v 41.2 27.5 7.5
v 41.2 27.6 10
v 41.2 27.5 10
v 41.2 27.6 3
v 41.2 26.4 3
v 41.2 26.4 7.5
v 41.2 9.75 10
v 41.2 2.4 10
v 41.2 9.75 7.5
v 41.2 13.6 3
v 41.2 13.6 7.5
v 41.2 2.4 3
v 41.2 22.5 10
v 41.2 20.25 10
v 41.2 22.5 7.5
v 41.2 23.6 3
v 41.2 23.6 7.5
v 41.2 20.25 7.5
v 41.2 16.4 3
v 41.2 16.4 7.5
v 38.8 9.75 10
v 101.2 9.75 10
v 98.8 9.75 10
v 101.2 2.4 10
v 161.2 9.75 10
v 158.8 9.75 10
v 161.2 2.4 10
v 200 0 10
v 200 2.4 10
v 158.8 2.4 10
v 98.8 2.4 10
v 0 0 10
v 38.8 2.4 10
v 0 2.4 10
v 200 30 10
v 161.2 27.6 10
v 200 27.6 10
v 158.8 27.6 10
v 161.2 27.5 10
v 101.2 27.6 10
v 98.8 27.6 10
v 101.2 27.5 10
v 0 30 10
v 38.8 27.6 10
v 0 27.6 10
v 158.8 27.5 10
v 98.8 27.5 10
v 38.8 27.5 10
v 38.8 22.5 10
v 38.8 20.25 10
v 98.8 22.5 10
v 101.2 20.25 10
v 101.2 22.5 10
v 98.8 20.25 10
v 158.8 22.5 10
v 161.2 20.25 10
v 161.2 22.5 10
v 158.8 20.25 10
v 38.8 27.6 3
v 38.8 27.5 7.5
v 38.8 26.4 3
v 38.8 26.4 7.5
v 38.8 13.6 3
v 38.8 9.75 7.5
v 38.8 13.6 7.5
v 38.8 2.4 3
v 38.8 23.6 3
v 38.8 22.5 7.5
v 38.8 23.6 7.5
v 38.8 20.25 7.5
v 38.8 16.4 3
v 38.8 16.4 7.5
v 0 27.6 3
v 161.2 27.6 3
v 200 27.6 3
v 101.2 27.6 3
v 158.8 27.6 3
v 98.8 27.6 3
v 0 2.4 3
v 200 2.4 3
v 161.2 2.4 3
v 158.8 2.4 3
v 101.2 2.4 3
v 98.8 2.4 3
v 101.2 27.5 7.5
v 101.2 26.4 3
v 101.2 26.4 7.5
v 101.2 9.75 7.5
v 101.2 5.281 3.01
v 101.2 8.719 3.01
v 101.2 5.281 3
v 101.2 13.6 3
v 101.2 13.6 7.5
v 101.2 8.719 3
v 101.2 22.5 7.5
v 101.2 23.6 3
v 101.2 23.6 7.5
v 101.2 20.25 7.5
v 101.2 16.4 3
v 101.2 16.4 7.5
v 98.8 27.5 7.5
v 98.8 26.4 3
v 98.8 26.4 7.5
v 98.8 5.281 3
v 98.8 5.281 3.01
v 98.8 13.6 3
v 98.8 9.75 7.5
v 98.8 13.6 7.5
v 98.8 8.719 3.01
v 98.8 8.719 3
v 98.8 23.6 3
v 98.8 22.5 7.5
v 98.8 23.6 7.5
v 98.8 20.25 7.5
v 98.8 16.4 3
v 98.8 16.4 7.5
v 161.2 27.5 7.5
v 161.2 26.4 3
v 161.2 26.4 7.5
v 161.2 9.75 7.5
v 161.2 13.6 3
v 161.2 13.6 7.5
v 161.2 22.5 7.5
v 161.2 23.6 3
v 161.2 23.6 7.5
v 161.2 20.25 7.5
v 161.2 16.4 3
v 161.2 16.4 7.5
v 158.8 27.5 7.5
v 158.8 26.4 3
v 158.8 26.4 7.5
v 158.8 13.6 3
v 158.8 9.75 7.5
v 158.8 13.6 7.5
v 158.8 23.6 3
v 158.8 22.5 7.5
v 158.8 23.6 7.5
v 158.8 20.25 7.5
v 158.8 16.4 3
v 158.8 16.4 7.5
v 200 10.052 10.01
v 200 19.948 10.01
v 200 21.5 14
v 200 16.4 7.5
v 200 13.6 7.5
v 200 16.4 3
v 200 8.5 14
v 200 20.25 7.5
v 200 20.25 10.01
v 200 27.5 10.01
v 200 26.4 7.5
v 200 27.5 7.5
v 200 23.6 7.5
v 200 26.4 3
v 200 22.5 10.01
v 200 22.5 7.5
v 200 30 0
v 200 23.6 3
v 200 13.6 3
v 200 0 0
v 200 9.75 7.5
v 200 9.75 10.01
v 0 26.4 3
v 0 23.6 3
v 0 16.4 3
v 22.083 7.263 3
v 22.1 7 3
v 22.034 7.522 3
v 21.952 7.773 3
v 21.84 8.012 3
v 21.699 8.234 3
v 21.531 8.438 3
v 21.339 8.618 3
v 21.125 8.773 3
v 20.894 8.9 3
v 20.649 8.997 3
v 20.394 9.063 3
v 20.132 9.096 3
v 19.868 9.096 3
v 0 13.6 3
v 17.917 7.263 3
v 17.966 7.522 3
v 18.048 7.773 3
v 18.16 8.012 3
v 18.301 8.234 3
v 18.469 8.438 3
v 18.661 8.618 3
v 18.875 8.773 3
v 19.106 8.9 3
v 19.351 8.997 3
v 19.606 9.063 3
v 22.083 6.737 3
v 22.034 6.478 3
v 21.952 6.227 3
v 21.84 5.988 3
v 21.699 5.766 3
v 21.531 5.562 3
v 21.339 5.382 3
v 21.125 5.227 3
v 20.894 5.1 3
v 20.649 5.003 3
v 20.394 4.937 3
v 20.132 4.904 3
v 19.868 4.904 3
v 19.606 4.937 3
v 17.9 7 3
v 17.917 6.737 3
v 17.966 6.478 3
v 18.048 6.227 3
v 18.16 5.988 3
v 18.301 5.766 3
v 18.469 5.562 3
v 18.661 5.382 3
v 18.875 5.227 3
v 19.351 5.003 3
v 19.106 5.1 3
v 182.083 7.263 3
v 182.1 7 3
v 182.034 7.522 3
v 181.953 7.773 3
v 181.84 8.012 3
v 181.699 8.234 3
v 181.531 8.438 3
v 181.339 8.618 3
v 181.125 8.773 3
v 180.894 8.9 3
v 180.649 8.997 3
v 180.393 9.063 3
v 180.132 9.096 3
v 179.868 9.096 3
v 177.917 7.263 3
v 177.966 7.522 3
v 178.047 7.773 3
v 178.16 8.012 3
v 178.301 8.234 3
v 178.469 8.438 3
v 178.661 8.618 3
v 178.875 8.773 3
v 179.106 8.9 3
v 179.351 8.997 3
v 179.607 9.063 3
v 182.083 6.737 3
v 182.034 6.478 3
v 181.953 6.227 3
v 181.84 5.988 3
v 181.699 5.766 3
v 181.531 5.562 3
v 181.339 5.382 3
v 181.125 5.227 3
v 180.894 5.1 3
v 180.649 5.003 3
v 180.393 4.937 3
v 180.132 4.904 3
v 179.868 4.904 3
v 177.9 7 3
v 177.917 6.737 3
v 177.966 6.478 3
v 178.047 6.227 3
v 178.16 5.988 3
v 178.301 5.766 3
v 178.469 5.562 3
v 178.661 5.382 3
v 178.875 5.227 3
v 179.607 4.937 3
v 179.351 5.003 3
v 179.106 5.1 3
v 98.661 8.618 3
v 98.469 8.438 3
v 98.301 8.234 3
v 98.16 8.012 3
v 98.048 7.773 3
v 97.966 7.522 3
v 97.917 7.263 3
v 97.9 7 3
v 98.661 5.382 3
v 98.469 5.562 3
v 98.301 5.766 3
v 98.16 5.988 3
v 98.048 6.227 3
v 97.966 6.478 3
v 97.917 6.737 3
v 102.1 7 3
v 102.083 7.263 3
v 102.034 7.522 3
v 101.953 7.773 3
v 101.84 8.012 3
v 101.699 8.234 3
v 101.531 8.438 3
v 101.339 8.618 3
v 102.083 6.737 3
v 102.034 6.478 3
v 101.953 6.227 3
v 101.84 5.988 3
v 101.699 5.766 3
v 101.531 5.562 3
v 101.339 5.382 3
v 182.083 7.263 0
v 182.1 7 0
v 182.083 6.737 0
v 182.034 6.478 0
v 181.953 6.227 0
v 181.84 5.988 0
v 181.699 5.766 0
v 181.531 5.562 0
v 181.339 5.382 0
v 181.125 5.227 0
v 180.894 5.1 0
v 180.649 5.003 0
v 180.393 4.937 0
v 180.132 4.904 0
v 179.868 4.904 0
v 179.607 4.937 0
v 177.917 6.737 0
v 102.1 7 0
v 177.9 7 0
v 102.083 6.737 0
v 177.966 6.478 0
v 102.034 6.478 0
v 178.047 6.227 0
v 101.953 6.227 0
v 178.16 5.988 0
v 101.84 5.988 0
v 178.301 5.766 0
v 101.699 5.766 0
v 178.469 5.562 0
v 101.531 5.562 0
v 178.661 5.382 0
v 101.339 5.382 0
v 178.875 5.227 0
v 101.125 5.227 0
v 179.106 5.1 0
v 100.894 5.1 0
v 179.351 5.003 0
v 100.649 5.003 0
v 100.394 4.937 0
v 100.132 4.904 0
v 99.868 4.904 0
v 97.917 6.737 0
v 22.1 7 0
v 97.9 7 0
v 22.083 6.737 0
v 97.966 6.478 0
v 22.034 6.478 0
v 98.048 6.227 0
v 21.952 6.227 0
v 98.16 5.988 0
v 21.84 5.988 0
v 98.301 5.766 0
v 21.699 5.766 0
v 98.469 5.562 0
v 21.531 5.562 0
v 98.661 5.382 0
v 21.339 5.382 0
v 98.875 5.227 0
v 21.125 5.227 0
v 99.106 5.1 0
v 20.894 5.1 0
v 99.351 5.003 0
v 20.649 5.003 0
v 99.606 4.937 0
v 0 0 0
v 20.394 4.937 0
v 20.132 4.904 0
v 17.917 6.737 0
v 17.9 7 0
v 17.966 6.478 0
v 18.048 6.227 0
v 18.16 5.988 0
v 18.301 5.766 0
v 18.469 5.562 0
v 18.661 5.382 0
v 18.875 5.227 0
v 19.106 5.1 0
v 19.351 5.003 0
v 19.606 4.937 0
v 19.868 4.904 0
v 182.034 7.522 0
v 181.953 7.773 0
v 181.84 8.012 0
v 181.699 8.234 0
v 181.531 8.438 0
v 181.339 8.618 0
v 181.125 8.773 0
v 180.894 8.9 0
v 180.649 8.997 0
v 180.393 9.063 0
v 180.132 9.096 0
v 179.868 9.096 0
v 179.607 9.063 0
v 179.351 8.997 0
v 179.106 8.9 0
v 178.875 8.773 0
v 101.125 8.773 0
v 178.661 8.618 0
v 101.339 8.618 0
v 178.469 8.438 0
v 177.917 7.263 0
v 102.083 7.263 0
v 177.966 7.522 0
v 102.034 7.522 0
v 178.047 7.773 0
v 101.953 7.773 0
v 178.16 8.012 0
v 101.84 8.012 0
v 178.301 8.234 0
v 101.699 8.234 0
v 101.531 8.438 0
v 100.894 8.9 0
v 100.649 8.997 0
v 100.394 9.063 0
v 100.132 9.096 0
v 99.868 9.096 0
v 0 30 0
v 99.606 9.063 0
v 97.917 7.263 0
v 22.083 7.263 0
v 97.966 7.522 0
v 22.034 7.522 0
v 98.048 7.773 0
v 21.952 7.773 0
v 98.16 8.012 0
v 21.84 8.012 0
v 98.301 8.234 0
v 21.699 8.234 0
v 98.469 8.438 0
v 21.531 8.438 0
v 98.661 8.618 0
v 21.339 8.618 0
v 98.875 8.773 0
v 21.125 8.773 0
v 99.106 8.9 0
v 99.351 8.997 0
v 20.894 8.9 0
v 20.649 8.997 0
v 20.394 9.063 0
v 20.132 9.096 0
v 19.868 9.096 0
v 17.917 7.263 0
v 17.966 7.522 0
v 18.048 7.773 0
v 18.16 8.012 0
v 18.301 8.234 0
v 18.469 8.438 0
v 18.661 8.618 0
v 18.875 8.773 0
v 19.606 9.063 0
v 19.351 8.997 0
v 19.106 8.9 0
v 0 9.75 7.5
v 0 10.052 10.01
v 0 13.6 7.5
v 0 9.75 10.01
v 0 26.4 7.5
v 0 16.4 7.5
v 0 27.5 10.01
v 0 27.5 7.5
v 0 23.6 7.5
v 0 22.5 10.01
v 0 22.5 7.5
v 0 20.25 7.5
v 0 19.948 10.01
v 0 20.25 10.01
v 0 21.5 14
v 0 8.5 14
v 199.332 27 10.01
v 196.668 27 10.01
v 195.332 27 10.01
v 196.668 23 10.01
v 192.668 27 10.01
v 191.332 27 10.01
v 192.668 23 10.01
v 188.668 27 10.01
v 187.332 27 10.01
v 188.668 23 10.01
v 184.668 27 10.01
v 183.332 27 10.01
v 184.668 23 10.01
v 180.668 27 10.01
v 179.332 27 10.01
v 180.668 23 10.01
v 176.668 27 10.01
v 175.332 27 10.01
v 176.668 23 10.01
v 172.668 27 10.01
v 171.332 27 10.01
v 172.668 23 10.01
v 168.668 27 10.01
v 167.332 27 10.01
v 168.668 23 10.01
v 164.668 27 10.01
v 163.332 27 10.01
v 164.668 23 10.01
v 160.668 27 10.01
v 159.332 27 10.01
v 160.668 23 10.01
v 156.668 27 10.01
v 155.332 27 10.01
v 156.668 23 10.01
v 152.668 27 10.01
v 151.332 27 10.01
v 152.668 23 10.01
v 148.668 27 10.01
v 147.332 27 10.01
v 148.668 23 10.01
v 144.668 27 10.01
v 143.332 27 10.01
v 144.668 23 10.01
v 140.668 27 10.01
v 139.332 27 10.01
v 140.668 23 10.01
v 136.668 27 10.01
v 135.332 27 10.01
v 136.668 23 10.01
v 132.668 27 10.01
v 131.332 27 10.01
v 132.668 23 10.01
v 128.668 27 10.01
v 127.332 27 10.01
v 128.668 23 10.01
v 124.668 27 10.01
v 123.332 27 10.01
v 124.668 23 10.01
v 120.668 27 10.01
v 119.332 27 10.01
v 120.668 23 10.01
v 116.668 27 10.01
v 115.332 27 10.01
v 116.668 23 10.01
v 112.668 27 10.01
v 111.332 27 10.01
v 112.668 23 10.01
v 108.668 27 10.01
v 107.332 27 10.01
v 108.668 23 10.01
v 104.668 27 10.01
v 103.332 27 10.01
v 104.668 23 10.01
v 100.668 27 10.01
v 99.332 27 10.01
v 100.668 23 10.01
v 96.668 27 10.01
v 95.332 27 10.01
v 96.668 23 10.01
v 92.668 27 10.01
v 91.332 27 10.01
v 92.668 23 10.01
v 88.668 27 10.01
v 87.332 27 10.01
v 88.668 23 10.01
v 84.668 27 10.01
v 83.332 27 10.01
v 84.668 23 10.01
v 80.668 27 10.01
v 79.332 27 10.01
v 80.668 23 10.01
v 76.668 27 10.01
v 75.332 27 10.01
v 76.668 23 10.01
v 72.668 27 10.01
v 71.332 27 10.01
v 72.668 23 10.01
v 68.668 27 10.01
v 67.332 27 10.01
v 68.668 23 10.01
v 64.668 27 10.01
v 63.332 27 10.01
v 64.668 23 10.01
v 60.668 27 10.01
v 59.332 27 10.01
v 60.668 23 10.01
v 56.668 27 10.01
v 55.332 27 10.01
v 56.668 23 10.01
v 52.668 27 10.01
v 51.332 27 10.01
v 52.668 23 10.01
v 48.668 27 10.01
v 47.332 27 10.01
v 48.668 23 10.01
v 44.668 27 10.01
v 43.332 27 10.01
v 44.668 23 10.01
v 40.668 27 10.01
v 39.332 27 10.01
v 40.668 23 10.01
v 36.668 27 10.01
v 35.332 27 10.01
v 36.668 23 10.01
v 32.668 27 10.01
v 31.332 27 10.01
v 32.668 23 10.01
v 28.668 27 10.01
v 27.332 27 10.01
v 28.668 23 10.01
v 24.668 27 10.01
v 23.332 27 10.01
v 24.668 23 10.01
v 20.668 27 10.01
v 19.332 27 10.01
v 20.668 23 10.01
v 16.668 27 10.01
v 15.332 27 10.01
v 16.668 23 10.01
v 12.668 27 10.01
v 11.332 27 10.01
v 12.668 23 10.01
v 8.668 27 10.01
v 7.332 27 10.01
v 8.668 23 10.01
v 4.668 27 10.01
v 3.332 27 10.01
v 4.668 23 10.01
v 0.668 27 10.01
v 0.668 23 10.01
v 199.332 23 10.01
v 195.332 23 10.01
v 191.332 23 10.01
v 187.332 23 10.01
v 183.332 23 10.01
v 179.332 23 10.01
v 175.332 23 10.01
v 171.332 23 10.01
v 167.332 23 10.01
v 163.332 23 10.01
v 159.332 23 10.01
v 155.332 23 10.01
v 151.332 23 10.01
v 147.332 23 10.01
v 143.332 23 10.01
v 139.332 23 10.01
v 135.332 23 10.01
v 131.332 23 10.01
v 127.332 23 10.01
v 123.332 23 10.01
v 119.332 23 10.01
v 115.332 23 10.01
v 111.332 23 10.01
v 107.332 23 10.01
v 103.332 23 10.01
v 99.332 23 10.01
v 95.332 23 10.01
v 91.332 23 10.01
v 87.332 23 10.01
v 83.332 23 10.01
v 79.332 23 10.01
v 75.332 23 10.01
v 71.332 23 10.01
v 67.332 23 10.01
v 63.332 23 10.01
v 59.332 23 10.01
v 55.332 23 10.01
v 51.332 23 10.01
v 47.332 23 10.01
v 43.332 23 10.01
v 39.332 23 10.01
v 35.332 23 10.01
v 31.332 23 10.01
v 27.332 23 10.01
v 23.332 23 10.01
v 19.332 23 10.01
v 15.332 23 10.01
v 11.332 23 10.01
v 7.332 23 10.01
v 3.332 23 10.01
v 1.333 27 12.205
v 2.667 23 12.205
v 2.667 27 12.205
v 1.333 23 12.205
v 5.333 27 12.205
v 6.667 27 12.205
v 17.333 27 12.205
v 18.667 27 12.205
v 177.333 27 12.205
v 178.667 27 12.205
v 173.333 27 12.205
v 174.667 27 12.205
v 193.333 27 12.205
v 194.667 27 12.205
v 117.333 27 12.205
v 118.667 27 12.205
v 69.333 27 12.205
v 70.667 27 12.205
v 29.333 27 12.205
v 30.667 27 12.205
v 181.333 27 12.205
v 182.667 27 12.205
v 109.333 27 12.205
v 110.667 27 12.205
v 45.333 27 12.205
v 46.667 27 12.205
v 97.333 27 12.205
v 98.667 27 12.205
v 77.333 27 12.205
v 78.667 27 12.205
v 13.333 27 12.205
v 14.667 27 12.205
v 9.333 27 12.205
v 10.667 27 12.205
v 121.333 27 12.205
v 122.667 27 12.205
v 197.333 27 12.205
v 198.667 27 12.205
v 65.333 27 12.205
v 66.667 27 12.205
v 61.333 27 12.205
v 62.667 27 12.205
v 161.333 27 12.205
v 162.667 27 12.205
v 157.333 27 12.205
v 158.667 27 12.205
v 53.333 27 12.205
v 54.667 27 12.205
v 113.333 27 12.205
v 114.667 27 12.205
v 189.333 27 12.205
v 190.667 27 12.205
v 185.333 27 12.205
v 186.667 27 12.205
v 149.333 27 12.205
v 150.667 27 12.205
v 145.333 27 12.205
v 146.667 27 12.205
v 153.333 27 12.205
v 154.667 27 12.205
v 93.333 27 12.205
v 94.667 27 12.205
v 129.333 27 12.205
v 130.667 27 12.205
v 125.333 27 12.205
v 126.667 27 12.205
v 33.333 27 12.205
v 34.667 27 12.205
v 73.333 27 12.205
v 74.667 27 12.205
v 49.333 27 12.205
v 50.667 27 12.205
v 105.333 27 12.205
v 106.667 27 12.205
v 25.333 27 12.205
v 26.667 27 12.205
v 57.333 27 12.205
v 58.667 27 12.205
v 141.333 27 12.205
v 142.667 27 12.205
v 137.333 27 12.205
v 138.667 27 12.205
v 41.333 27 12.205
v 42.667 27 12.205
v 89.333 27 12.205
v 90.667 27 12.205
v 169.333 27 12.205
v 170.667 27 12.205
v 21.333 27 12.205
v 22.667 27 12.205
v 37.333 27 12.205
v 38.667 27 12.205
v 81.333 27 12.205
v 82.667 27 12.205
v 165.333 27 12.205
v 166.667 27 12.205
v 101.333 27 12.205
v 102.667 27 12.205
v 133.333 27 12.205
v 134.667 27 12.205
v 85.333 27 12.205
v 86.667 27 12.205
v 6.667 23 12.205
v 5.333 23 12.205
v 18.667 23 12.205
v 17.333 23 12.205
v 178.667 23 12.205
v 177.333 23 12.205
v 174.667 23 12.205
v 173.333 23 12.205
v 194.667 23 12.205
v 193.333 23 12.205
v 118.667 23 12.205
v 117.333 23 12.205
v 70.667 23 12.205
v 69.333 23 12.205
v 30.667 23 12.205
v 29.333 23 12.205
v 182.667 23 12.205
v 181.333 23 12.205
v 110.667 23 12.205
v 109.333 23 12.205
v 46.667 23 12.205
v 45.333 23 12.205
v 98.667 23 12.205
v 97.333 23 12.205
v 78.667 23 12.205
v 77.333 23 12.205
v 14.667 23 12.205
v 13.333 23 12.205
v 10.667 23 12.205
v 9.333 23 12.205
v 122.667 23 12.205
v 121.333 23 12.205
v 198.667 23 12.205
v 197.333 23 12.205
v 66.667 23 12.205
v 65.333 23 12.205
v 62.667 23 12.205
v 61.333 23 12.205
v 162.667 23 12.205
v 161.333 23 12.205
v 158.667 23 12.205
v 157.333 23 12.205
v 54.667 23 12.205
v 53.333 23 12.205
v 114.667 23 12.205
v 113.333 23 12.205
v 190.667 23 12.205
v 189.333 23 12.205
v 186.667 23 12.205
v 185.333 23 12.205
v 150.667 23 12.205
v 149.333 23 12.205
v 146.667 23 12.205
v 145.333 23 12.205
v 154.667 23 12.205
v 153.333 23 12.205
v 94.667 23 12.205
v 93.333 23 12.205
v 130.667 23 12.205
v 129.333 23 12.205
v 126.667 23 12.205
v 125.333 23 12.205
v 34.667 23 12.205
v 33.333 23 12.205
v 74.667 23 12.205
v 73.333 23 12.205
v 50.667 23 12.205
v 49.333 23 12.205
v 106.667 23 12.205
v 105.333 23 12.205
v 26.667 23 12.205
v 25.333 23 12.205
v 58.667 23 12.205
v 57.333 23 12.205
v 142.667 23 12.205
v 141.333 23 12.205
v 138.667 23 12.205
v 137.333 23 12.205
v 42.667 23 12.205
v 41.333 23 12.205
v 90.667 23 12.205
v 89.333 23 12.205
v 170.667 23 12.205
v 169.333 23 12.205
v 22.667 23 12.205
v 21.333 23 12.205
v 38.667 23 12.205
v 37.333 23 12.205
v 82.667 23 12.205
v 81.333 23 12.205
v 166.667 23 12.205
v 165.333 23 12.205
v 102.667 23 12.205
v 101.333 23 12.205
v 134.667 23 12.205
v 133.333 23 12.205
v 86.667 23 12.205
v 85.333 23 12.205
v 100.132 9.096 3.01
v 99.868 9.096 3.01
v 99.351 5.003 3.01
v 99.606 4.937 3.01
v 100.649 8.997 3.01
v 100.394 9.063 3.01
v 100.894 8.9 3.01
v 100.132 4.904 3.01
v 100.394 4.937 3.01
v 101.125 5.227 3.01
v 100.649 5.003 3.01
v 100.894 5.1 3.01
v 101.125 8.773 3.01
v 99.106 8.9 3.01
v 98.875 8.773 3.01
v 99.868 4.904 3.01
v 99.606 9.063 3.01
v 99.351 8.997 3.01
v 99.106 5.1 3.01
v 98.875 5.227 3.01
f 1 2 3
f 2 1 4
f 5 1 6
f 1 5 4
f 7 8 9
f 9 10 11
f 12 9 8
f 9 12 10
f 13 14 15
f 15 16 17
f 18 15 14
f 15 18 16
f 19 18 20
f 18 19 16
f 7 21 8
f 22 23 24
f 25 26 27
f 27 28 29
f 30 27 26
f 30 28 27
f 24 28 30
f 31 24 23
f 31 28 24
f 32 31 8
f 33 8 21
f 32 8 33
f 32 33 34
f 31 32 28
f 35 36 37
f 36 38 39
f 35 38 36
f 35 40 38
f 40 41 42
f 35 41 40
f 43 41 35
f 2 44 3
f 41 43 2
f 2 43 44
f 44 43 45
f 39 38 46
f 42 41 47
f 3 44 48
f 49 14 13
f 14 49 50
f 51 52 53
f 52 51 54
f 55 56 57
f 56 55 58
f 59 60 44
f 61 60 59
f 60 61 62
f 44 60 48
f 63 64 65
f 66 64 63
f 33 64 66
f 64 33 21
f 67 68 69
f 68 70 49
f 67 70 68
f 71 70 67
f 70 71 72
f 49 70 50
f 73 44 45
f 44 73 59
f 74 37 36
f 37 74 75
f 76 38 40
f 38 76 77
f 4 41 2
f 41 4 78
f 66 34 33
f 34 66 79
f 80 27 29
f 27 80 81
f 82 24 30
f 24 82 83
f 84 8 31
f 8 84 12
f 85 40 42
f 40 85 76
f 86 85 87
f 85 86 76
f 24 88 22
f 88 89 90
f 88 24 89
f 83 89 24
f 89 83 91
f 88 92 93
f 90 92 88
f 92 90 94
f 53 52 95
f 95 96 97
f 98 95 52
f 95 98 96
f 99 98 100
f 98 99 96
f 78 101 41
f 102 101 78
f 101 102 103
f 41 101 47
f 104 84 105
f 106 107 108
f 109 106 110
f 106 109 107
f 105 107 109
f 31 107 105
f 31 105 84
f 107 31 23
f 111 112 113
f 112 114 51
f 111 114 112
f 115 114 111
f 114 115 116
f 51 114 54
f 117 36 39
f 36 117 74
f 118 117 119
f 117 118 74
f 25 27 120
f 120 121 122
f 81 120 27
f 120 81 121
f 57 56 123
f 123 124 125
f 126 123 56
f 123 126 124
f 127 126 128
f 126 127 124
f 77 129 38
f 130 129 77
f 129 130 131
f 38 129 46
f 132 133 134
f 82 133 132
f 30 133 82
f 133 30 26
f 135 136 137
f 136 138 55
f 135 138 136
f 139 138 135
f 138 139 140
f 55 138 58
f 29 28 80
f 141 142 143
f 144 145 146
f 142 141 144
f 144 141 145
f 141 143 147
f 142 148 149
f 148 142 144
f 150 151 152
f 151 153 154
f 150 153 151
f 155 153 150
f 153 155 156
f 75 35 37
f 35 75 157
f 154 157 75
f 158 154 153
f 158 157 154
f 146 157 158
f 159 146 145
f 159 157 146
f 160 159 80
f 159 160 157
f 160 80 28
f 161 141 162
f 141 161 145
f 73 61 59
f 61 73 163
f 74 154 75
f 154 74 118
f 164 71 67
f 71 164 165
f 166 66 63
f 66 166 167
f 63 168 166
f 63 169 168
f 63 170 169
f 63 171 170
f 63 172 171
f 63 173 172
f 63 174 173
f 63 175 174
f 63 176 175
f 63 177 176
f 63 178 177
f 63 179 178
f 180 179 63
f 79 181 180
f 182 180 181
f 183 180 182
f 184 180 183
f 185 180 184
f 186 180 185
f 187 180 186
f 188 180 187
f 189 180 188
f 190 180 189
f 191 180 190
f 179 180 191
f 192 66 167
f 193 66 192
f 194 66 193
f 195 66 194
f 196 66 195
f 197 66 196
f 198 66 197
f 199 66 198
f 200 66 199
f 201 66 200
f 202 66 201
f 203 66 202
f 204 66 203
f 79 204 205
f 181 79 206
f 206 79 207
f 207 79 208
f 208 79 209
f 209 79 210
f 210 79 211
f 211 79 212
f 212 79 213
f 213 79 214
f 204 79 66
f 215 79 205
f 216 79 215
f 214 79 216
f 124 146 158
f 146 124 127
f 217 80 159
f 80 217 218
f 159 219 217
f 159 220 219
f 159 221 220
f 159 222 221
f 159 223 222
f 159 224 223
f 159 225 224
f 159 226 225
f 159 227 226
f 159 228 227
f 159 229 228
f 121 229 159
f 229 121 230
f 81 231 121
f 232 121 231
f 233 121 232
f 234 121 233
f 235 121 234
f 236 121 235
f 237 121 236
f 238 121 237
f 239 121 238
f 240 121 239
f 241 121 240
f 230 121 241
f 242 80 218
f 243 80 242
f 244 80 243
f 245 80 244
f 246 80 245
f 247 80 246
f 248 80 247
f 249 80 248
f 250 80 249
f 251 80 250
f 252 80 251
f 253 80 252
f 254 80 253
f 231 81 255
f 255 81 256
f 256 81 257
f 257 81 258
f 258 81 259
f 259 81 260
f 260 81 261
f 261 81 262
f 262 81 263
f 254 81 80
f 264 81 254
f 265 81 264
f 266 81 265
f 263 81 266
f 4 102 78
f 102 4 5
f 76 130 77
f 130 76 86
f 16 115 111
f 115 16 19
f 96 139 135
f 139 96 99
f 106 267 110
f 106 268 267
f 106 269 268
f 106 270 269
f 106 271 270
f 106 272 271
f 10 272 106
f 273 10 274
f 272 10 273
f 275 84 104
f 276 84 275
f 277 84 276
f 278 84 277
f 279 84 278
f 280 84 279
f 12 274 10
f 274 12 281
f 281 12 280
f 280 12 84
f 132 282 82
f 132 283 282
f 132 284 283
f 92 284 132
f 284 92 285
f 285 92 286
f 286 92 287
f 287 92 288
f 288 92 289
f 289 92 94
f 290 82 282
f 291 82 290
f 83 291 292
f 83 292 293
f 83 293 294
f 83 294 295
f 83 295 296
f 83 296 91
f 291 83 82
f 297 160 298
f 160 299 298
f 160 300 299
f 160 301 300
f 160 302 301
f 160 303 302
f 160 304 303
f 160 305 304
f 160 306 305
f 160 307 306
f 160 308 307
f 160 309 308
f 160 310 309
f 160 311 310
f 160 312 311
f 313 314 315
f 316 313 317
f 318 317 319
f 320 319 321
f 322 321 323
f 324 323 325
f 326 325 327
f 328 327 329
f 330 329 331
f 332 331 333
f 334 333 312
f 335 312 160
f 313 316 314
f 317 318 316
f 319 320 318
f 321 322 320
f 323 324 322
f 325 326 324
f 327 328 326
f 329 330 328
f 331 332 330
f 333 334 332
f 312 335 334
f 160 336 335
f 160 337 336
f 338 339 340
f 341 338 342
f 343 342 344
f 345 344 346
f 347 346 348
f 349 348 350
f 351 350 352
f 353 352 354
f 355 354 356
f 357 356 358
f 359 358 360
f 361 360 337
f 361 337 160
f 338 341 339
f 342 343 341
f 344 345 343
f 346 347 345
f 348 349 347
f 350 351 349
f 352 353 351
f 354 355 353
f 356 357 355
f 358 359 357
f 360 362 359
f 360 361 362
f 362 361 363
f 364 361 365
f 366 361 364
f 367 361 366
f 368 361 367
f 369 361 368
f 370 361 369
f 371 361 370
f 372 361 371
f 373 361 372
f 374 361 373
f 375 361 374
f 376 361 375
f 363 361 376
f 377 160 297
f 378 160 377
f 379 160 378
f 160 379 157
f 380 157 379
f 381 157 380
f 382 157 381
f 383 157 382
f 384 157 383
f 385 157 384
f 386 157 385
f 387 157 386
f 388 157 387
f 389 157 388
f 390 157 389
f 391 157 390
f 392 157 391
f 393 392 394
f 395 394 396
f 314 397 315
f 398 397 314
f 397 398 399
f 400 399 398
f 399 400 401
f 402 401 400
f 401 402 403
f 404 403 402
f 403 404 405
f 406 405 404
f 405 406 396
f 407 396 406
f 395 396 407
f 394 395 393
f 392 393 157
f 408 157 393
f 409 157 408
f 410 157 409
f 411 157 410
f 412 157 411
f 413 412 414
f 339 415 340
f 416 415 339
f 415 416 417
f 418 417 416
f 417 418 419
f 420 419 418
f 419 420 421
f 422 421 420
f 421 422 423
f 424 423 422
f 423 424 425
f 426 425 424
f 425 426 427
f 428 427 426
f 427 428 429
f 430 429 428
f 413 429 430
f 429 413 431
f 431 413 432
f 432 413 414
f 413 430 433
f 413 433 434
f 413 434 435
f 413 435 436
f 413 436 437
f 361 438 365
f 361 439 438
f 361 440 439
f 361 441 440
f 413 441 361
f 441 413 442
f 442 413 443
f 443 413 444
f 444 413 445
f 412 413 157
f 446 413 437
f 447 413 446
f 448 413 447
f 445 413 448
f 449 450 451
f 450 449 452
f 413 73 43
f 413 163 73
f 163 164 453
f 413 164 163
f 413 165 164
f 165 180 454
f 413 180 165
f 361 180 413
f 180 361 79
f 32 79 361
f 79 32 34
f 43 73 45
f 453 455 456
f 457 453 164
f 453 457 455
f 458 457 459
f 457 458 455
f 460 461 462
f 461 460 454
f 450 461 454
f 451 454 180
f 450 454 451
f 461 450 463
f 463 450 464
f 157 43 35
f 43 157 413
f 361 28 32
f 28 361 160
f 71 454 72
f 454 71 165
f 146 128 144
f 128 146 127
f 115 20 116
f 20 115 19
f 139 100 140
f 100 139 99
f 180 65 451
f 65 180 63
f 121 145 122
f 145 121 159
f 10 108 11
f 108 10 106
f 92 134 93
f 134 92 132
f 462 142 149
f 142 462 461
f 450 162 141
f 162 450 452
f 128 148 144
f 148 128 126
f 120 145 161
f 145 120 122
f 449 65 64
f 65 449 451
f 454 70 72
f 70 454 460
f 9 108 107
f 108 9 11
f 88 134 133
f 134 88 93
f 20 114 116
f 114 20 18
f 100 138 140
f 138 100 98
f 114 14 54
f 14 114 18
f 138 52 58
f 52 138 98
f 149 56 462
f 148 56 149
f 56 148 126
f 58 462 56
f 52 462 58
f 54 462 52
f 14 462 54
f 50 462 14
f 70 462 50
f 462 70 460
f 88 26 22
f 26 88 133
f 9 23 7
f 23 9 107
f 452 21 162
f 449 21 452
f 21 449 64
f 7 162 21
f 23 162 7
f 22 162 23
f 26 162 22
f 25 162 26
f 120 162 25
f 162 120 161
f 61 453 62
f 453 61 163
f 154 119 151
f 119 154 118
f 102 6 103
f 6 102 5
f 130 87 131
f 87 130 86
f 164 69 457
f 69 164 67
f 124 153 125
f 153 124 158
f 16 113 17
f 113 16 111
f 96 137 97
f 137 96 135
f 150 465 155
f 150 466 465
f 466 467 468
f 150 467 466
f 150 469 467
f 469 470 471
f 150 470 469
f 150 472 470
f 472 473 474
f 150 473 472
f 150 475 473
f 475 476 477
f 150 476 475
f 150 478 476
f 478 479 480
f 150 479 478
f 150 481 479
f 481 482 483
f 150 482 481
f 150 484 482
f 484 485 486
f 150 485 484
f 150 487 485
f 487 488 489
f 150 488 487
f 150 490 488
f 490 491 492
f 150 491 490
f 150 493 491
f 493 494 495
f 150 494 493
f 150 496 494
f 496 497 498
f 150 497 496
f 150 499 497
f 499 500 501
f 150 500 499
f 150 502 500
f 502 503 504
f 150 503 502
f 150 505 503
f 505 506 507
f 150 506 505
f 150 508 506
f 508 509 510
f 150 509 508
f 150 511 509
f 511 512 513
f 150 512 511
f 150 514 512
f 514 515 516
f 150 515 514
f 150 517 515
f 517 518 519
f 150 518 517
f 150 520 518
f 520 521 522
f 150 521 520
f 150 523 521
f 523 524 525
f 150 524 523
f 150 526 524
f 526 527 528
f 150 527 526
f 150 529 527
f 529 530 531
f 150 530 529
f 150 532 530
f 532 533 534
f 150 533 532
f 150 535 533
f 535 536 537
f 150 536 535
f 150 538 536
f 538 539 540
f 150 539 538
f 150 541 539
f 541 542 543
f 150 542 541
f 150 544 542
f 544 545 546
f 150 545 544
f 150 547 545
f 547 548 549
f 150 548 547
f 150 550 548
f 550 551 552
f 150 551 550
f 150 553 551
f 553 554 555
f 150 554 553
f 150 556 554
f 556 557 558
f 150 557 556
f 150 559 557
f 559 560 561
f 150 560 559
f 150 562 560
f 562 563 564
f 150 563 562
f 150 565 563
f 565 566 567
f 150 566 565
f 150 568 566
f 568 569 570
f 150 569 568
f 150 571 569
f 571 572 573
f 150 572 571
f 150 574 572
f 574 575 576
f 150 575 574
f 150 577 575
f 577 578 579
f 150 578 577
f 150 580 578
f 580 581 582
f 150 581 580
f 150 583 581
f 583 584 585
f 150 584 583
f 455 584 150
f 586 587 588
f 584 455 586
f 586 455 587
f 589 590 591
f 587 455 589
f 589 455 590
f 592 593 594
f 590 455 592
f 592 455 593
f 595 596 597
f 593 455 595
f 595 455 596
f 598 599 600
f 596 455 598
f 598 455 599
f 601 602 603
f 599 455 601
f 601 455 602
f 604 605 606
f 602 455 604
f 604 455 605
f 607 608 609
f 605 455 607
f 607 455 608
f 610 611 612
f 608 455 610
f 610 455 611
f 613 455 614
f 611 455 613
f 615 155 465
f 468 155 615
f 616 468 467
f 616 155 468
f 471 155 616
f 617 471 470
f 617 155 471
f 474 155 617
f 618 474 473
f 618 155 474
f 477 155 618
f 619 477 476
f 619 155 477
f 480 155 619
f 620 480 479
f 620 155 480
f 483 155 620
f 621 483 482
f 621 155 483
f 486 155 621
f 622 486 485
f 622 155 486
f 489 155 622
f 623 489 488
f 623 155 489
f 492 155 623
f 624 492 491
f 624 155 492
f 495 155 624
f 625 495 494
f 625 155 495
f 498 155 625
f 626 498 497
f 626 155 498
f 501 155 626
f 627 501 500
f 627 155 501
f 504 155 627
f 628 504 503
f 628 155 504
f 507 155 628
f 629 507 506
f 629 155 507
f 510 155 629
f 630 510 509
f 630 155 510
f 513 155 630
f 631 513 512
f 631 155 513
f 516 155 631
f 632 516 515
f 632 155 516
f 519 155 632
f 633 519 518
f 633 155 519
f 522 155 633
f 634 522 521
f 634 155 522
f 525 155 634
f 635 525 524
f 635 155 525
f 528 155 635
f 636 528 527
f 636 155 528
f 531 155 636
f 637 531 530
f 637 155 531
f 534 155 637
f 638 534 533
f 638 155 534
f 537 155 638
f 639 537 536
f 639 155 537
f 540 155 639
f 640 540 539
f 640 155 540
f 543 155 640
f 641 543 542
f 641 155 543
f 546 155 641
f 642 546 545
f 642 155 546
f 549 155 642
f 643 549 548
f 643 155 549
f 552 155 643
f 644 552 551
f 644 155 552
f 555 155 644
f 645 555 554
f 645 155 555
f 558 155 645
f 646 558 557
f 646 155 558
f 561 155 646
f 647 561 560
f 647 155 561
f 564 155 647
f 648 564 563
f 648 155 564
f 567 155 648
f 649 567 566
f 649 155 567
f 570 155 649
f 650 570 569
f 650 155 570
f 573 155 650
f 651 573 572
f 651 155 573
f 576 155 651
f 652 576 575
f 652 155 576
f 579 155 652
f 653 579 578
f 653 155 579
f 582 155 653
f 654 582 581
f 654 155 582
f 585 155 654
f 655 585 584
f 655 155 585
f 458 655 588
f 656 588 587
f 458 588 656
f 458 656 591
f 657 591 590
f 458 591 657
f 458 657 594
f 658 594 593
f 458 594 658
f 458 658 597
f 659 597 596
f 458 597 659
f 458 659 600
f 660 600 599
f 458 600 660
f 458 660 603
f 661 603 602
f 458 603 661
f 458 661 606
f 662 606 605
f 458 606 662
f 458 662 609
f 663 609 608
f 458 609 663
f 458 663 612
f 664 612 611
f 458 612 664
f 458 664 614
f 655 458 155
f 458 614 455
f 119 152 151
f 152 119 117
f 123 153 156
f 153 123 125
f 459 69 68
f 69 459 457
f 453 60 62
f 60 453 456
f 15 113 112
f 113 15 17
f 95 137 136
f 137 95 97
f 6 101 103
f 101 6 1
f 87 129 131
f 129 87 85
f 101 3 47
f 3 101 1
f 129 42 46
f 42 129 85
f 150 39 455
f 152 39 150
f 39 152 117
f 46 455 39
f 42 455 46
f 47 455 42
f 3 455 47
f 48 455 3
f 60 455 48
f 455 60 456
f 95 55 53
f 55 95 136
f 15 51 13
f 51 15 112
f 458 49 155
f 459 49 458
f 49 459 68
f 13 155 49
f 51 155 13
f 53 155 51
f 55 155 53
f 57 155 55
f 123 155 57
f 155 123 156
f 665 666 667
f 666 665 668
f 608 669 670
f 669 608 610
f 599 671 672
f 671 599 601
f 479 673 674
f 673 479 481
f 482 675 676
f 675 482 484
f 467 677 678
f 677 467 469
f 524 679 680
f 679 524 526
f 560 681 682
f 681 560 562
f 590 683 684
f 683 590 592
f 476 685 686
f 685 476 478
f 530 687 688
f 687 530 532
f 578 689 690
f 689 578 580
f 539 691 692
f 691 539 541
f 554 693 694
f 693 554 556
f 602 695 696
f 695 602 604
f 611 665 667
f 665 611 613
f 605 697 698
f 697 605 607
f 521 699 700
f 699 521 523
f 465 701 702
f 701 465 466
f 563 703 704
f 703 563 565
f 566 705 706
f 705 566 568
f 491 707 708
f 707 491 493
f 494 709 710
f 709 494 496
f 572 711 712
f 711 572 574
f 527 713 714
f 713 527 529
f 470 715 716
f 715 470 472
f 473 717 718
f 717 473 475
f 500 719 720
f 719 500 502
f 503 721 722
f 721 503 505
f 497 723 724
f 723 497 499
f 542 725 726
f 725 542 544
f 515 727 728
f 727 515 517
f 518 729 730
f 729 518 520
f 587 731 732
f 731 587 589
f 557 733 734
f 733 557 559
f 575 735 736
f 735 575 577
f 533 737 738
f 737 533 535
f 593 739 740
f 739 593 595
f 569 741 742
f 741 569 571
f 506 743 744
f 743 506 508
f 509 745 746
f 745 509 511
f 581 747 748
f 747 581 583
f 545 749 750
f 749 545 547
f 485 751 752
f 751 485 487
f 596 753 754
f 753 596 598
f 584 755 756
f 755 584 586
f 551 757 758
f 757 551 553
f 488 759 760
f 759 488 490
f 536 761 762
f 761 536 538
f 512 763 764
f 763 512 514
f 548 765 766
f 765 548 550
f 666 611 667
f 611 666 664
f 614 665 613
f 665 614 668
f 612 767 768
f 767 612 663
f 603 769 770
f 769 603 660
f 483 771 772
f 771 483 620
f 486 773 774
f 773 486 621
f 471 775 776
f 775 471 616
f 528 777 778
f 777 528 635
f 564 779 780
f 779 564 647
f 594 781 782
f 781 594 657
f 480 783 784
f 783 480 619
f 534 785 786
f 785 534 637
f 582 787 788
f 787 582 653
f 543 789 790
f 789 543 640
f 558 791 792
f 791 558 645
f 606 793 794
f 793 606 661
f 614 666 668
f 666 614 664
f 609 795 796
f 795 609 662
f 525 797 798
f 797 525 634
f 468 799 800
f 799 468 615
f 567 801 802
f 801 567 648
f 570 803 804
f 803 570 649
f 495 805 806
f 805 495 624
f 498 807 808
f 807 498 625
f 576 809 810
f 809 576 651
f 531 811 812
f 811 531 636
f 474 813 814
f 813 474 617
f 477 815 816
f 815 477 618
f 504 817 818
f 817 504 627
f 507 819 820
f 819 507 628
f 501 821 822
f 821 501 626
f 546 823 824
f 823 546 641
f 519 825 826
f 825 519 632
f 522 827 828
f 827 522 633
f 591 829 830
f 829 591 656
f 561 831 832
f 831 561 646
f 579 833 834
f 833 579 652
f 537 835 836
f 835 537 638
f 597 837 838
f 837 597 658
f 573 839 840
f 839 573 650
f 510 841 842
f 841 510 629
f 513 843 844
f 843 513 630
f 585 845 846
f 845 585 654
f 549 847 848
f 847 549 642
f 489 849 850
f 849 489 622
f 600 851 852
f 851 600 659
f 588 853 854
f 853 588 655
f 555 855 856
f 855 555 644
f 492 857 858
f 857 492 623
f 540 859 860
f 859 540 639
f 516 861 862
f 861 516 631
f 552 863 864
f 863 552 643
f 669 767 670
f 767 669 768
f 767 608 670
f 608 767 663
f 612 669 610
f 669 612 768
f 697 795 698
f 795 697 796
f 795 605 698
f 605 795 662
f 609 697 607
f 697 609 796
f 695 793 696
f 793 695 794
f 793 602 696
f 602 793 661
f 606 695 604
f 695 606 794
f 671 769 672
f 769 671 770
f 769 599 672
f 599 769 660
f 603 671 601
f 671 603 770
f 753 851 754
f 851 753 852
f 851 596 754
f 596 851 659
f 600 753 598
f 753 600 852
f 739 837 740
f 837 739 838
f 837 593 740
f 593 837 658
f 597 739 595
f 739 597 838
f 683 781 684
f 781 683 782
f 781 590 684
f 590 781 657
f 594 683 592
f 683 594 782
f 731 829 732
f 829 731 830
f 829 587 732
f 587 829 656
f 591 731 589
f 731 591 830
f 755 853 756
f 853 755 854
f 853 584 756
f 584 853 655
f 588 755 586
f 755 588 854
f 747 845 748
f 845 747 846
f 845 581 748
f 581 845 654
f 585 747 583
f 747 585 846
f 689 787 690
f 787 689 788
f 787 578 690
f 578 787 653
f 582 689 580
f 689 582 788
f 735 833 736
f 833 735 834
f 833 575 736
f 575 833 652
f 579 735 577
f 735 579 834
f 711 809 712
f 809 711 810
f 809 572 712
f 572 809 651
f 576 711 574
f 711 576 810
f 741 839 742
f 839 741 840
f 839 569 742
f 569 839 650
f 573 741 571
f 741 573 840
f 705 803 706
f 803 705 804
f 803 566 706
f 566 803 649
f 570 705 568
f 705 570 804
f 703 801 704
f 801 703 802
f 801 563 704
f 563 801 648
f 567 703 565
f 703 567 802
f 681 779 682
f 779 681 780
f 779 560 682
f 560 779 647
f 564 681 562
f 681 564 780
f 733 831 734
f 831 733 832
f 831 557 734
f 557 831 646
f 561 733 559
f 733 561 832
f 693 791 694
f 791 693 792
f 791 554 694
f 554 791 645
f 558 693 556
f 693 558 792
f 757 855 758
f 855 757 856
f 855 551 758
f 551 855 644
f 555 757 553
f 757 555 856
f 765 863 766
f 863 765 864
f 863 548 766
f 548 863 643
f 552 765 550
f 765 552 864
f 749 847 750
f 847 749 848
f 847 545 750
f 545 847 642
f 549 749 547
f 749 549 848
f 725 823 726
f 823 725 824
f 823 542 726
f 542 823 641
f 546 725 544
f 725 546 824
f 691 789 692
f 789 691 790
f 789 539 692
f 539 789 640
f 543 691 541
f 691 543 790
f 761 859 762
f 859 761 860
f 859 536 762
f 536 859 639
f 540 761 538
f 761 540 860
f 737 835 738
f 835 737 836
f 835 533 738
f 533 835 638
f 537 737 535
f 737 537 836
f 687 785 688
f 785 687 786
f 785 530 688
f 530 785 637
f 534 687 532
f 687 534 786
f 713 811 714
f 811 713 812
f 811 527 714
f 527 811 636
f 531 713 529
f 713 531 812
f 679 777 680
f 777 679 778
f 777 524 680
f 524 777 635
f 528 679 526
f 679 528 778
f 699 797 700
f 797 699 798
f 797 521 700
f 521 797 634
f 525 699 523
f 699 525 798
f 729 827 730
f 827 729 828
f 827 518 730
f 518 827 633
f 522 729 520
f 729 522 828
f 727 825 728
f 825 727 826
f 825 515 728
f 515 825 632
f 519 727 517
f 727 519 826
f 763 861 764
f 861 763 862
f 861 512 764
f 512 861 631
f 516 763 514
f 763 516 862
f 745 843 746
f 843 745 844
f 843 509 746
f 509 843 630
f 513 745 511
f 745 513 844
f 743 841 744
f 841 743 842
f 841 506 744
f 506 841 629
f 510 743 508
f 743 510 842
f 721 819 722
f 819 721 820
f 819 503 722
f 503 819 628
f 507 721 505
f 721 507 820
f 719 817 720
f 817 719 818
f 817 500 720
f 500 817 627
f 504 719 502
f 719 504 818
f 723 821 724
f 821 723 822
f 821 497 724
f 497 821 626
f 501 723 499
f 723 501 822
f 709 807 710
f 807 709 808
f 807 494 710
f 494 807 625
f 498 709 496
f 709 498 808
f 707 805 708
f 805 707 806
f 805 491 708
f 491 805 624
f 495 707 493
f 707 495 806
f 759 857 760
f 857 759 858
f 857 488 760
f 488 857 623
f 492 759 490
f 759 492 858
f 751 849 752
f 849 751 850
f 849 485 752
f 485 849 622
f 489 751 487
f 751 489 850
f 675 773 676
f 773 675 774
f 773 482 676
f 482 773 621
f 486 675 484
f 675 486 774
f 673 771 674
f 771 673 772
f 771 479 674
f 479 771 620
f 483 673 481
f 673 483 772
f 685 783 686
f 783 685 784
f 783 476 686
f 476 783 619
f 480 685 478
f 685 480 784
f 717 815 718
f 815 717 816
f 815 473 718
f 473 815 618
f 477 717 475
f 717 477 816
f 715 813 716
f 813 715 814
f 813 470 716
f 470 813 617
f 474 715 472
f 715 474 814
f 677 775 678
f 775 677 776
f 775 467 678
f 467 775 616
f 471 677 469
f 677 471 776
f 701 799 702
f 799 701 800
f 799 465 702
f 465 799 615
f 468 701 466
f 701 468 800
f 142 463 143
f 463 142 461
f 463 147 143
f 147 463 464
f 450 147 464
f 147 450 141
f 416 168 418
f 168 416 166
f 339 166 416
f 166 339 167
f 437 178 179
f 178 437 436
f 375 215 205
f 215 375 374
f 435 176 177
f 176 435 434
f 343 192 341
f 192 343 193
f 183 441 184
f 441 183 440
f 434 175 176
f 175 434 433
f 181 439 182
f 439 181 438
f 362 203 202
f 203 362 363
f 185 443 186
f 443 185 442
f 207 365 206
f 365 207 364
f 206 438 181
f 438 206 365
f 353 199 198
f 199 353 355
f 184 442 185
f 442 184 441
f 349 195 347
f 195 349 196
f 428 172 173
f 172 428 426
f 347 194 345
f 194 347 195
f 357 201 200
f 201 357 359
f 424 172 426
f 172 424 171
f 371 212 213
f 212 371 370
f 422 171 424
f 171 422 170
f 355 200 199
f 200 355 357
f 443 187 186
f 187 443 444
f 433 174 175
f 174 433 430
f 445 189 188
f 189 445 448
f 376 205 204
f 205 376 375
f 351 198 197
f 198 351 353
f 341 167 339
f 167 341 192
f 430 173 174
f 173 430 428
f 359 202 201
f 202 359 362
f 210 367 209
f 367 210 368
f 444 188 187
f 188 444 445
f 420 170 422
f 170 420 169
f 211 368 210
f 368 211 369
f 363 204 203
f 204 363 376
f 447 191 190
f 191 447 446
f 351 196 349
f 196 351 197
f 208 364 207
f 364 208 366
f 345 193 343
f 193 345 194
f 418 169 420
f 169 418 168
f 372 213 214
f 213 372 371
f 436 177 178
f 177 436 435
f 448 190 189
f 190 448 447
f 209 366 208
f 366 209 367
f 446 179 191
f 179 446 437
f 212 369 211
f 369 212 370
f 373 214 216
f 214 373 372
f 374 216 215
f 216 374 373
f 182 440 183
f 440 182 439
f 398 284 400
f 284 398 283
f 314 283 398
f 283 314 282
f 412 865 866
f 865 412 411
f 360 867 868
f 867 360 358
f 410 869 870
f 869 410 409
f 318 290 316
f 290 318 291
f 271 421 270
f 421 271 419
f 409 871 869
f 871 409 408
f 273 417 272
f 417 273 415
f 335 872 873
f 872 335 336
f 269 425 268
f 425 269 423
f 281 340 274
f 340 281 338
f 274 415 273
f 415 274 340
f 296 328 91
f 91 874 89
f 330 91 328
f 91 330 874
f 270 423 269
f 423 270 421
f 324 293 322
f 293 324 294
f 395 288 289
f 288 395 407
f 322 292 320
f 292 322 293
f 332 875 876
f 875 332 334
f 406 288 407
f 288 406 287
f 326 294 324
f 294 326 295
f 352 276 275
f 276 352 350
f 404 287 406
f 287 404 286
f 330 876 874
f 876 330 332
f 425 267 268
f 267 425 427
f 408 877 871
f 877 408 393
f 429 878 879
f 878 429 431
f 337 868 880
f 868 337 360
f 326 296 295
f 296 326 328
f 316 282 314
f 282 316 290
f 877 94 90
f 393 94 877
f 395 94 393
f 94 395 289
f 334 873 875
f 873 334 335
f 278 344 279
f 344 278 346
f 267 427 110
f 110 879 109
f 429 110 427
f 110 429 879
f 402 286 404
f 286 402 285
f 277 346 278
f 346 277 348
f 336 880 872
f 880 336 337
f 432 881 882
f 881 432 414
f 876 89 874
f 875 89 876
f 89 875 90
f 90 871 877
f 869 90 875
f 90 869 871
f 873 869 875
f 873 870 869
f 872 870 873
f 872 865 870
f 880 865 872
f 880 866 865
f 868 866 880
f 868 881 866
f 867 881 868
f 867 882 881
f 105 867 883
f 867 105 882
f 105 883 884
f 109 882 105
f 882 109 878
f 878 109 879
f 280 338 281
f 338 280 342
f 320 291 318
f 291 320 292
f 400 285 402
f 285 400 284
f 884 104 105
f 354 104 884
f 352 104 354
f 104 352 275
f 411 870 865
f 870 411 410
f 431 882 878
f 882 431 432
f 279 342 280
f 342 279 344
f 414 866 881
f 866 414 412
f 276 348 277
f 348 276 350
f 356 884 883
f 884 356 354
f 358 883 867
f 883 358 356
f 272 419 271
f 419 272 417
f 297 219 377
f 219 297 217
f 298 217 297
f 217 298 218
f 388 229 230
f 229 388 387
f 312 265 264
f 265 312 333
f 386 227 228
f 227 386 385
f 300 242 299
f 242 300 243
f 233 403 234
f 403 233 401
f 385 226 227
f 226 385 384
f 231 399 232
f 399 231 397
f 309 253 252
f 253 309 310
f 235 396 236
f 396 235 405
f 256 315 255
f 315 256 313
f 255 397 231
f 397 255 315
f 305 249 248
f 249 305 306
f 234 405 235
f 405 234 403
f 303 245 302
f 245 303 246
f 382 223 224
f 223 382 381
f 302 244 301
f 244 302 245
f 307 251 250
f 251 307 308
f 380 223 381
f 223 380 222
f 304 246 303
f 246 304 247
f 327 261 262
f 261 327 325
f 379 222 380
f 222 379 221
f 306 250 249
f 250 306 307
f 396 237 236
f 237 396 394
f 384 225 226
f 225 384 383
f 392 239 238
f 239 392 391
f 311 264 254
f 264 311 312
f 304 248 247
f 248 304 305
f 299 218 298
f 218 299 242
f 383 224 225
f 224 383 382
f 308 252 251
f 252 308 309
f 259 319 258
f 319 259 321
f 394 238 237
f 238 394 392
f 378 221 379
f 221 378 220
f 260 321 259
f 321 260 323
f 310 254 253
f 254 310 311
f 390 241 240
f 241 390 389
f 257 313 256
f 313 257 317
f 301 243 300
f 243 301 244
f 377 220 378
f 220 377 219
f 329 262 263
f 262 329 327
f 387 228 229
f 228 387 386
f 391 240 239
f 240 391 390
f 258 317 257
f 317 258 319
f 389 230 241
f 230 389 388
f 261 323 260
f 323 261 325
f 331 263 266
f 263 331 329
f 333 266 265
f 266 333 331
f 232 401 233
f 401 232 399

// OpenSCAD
/*
  =============================================================================
  01_Base_Trilho_X.scad - Trilho Base Fixo X (GEOMETRIA CORRIGIDA DEFINITIVA)
  =============================================================================
  Perfil Low-Cost com nervuras:
    - Piso contínuo (floor_h = 3mm)
    - Paredes laterais (wall_thin)
    - Nervura central sob dovetail + plataforma de transição
    - Nervura sob cremalheira + plataforma
    - Nervuras transversais periódicas para rigidez torcional
    - Dovetail macho integrado com overlap 0.5mm
    - Cremalheira X integrada com overlap 0.6mm
    - Furos M4 no piso entre nervuras
  
  RESULTADO: 1 ÚNICO COMPONENTE CONECTADO no STL
  
  Orientação de impressão: Z=0 no leito, fundo plano, sem suporte obrigatório.
  =============================================================================
*/

include <00_Parametros.scad>;

module base_trilho_x(length=x_rail_length) {
  dt_y   = base_w / 2;         // Y=15: centro do dovetail
  rack_y = base_w - 5.0;       // Y=25: centro da cremalheira
  rib_w  = wall_structural;    // 2.8mm largura das nervuras

  dt_platform_w    = dovetail_width_bottom + 1.0; // 10.5mm
  dt_platform_h    = 2.5;

  rack_platform_w  = rack_width + 1.0; // 5.0mm
  rack_platform_h  = 2.5;

  difference() {
    union() {
      // ====== ESTRUTURA PRINCIPAL ======
      color([0.25, 0.28, 0.32]) {
        cube([length, base_w, floor_h]);
        cube([length, wall_thin, base_h]);
        translate([0, base_w - wall_thin, 0])
          cube([length, wall_thin, base_h]);
        translate([0, dt_y - rib_w/2, 0])
          cube([length, rib_w, base_h]);
        translate([0, dt_y - dt_platform_w/2, base_h - dt_platform_h])
          cube([length, dt_platform_w, dt_platform_h + EPS]);
        translate([0, rack_y - rib_w/2, 0])
          cube([length, rib_w, base_h]);
        translate([0, rack_y - rack_platform_w/2, base_h - rack_platform_h])
          cube([length, rack_platform_w, rack_platform_h + EPS]);

        for (cx = [40, length/2, length - 40]) {
          translate([cx - wall_thin/2, wall_thin, floor_h - EPS])
            cube([wall_thin, base_w - 2*wall_thin, base_h - floor_h + EPS]);
        }
      }

      // ====== GUIA DOVETAIL MACHO ======
      // Overlap: afundado 0.5mm na plataforma para união sólida garantida
      color([0.2, 0.6, 0.9])
        translate([0, dt_y, base_h - 0.5])
          dovetail_male_x(length=length);

      // ====== CREMALHEIRA X ======
      // Overlap: base de 0.6mm afundada na plataforma
      color([0.95, 0.85, 0.15])
        translate([0, rack_y, base_h])
          rack_x(length=length);
    }

    // ====== FUROS M4 PARA FIXAÇÃO NA BANCADA ======
    for (fx = [20, length/2, length - 20]) {
      translate([fx, 7.0, -EPS])
        cylinder(r=2.1, h=floor_h + EPS*2);
    }
  }
}

// Renderização para impressão/exportação
base_trilho_x();
